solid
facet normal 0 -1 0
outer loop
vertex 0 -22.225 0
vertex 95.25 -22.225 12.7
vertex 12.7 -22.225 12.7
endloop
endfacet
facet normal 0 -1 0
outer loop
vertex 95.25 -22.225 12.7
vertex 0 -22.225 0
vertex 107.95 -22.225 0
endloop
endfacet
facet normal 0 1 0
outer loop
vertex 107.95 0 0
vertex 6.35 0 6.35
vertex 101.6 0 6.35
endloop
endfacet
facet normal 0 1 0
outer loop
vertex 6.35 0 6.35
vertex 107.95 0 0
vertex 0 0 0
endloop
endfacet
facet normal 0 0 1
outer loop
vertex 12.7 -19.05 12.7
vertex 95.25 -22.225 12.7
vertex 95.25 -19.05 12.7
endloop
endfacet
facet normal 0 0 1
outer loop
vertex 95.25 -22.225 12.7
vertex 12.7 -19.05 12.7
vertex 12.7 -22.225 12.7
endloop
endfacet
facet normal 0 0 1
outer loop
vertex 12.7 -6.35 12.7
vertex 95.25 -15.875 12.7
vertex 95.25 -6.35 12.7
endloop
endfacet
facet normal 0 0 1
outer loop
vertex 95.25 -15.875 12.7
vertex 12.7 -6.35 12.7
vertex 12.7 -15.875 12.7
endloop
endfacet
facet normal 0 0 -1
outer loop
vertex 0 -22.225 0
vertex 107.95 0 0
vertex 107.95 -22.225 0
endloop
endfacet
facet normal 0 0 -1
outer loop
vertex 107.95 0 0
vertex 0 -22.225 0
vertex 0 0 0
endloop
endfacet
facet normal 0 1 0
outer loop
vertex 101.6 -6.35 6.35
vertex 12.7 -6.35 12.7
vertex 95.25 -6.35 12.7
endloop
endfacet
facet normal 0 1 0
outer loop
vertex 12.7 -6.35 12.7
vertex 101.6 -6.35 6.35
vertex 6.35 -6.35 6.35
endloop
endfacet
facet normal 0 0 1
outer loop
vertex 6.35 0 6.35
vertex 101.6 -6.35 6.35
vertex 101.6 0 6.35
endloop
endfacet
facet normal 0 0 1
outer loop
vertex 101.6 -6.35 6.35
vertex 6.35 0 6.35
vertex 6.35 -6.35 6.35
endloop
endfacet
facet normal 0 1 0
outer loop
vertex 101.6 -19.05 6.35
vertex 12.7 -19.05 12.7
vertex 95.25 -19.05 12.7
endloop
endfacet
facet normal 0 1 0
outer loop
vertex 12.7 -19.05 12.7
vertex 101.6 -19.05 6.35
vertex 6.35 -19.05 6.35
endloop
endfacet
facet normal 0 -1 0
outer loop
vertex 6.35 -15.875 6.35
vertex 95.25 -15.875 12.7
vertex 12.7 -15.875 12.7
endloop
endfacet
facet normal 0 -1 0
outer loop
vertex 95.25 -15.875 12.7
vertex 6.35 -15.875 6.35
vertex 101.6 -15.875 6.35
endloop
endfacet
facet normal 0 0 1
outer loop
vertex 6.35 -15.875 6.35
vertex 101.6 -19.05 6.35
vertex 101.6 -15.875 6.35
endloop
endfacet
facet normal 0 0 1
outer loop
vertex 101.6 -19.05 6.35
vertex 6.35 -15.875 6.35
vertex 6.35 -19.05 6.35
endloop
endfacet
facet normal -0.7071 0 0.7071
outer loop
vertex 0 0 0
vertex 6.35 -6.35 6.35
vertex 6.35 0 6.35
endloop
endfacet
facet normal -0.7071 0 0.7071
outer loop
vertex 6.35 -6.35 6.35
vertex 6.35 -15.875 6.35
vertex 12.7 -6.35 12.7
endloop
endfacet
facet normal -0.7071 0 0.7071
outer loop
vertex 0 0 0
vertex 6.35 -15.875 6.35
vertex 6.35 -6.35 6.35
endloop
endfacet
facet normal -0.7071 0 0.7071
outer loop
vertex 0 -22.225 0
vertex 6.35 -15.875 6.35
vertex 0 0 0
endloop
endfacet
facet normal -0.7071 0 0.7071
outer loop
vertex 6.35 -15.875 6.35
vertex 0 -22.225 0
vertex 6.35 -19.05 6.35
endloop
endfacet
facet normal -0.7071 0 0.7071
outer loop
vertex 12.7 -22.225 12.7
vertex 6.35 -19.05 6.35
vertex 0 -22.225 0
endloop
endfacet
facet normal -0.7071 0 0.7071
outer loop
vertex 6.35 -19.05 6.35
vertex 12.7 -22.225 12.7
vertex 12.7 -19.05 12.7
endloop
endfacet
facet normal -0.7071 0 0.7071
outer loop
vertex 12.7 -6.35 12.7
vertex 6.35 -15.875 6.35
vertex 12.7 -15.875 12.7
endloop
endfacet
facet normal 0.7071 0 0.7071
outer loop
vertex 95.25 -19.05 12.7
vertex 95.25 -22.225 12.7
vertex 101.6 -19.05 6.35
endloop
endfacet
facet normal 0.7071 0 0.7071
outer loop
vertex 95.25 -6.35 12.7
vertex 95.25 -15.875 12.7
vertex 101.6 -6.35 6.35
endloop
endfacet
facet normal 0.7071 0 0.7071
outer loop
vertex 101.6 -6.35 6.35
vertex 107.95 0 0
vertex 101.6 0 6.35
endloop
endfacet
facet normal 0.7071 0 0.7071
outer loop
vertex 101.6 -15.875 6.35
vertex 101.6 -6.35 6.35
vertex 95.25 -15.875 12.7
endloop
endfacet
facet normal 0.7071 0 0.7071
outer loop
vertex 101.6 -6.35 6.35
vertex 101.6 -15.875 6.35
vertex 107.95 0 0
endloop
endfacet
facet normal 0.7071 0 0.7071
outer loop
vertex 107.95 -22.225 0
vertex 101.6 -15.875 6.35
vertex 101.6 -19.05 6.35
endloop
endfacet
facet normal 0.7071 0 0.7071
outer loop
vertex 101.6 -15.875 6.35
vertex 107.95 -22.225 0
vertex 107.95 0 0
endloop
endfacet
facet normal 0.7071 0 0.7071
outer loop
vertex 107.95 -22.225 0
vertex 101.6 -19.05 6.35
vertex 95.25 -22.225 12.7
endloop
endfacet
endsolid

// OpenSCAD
// file: frame-module.scad
use <funcs.scad>;

module frame_bar(item_width, item_thickness, frame_width, pane_thickness, pane_inset_x, pane_inset_z, backing_thickness, backing_inset) {
    total_width = item_width + 2*frame_width;
    total_thickness = backing_thickness + item_thickness + pane_thickness + pane_inset_z;
    difference() {
        cube([total_width, frame_width, total_thickness]);
        // backing
        translate([-0.1, backing_inset, -0.1])
            cube([total_width + 0.2, frame_width, backing_thickness + 0.1]);
        // pane
        translate([-0.1, pane_inset_x, backing_thickness + item_thickness])
            cube([total_width + 0.2, frame_width, pane_thickness]);
        // bottom corner
        translate([-0.1, -0.1, -0.1])
            right_triangle(frame_width + 0.2, frame_width + 0.2, total_thickness + 0.2);
        // top corner
        translate([total_width + 0.1, -0.1, -0.1])
            right_triangle(-frame_width - 0.2, frame_width + 0.2, total_thickness + 0.2);
    }
}

// testing
frame_bar(inches(6.375), inches(0.375), inches(0.5), inches(0.125), inches(0.25), inches(0.125), inches(0.25), inches(0.25));
translate([0, inches(1.5), 0])
    frame_bar(inches(4.125), inches(0.375), inches(0.5), inches(0.125), inches(0.25), inches(0.125), inches(0.25), inches(0.25));
// file: funcs.scad
include <MCAD/constants.scad>;

function inches(n) = n*mm_per_inch;

module right_triangle(width, height, thickness) {
    linear_extrude(height=thickness, center = false)
        polygon([[0, 0], [0, height], [width, height]]);
}

// testing
right_triangle(20, 30, 10);
// main file
use <funcs.scad>;
use <frame-module.scad>;

rotate([90, 0, 0])
frame_bar(inches(3.25), inches(0.375), inches(0.5), inches(0.125), inches(0.25), inches(0.125), inches(0.25), inches(0.25));
